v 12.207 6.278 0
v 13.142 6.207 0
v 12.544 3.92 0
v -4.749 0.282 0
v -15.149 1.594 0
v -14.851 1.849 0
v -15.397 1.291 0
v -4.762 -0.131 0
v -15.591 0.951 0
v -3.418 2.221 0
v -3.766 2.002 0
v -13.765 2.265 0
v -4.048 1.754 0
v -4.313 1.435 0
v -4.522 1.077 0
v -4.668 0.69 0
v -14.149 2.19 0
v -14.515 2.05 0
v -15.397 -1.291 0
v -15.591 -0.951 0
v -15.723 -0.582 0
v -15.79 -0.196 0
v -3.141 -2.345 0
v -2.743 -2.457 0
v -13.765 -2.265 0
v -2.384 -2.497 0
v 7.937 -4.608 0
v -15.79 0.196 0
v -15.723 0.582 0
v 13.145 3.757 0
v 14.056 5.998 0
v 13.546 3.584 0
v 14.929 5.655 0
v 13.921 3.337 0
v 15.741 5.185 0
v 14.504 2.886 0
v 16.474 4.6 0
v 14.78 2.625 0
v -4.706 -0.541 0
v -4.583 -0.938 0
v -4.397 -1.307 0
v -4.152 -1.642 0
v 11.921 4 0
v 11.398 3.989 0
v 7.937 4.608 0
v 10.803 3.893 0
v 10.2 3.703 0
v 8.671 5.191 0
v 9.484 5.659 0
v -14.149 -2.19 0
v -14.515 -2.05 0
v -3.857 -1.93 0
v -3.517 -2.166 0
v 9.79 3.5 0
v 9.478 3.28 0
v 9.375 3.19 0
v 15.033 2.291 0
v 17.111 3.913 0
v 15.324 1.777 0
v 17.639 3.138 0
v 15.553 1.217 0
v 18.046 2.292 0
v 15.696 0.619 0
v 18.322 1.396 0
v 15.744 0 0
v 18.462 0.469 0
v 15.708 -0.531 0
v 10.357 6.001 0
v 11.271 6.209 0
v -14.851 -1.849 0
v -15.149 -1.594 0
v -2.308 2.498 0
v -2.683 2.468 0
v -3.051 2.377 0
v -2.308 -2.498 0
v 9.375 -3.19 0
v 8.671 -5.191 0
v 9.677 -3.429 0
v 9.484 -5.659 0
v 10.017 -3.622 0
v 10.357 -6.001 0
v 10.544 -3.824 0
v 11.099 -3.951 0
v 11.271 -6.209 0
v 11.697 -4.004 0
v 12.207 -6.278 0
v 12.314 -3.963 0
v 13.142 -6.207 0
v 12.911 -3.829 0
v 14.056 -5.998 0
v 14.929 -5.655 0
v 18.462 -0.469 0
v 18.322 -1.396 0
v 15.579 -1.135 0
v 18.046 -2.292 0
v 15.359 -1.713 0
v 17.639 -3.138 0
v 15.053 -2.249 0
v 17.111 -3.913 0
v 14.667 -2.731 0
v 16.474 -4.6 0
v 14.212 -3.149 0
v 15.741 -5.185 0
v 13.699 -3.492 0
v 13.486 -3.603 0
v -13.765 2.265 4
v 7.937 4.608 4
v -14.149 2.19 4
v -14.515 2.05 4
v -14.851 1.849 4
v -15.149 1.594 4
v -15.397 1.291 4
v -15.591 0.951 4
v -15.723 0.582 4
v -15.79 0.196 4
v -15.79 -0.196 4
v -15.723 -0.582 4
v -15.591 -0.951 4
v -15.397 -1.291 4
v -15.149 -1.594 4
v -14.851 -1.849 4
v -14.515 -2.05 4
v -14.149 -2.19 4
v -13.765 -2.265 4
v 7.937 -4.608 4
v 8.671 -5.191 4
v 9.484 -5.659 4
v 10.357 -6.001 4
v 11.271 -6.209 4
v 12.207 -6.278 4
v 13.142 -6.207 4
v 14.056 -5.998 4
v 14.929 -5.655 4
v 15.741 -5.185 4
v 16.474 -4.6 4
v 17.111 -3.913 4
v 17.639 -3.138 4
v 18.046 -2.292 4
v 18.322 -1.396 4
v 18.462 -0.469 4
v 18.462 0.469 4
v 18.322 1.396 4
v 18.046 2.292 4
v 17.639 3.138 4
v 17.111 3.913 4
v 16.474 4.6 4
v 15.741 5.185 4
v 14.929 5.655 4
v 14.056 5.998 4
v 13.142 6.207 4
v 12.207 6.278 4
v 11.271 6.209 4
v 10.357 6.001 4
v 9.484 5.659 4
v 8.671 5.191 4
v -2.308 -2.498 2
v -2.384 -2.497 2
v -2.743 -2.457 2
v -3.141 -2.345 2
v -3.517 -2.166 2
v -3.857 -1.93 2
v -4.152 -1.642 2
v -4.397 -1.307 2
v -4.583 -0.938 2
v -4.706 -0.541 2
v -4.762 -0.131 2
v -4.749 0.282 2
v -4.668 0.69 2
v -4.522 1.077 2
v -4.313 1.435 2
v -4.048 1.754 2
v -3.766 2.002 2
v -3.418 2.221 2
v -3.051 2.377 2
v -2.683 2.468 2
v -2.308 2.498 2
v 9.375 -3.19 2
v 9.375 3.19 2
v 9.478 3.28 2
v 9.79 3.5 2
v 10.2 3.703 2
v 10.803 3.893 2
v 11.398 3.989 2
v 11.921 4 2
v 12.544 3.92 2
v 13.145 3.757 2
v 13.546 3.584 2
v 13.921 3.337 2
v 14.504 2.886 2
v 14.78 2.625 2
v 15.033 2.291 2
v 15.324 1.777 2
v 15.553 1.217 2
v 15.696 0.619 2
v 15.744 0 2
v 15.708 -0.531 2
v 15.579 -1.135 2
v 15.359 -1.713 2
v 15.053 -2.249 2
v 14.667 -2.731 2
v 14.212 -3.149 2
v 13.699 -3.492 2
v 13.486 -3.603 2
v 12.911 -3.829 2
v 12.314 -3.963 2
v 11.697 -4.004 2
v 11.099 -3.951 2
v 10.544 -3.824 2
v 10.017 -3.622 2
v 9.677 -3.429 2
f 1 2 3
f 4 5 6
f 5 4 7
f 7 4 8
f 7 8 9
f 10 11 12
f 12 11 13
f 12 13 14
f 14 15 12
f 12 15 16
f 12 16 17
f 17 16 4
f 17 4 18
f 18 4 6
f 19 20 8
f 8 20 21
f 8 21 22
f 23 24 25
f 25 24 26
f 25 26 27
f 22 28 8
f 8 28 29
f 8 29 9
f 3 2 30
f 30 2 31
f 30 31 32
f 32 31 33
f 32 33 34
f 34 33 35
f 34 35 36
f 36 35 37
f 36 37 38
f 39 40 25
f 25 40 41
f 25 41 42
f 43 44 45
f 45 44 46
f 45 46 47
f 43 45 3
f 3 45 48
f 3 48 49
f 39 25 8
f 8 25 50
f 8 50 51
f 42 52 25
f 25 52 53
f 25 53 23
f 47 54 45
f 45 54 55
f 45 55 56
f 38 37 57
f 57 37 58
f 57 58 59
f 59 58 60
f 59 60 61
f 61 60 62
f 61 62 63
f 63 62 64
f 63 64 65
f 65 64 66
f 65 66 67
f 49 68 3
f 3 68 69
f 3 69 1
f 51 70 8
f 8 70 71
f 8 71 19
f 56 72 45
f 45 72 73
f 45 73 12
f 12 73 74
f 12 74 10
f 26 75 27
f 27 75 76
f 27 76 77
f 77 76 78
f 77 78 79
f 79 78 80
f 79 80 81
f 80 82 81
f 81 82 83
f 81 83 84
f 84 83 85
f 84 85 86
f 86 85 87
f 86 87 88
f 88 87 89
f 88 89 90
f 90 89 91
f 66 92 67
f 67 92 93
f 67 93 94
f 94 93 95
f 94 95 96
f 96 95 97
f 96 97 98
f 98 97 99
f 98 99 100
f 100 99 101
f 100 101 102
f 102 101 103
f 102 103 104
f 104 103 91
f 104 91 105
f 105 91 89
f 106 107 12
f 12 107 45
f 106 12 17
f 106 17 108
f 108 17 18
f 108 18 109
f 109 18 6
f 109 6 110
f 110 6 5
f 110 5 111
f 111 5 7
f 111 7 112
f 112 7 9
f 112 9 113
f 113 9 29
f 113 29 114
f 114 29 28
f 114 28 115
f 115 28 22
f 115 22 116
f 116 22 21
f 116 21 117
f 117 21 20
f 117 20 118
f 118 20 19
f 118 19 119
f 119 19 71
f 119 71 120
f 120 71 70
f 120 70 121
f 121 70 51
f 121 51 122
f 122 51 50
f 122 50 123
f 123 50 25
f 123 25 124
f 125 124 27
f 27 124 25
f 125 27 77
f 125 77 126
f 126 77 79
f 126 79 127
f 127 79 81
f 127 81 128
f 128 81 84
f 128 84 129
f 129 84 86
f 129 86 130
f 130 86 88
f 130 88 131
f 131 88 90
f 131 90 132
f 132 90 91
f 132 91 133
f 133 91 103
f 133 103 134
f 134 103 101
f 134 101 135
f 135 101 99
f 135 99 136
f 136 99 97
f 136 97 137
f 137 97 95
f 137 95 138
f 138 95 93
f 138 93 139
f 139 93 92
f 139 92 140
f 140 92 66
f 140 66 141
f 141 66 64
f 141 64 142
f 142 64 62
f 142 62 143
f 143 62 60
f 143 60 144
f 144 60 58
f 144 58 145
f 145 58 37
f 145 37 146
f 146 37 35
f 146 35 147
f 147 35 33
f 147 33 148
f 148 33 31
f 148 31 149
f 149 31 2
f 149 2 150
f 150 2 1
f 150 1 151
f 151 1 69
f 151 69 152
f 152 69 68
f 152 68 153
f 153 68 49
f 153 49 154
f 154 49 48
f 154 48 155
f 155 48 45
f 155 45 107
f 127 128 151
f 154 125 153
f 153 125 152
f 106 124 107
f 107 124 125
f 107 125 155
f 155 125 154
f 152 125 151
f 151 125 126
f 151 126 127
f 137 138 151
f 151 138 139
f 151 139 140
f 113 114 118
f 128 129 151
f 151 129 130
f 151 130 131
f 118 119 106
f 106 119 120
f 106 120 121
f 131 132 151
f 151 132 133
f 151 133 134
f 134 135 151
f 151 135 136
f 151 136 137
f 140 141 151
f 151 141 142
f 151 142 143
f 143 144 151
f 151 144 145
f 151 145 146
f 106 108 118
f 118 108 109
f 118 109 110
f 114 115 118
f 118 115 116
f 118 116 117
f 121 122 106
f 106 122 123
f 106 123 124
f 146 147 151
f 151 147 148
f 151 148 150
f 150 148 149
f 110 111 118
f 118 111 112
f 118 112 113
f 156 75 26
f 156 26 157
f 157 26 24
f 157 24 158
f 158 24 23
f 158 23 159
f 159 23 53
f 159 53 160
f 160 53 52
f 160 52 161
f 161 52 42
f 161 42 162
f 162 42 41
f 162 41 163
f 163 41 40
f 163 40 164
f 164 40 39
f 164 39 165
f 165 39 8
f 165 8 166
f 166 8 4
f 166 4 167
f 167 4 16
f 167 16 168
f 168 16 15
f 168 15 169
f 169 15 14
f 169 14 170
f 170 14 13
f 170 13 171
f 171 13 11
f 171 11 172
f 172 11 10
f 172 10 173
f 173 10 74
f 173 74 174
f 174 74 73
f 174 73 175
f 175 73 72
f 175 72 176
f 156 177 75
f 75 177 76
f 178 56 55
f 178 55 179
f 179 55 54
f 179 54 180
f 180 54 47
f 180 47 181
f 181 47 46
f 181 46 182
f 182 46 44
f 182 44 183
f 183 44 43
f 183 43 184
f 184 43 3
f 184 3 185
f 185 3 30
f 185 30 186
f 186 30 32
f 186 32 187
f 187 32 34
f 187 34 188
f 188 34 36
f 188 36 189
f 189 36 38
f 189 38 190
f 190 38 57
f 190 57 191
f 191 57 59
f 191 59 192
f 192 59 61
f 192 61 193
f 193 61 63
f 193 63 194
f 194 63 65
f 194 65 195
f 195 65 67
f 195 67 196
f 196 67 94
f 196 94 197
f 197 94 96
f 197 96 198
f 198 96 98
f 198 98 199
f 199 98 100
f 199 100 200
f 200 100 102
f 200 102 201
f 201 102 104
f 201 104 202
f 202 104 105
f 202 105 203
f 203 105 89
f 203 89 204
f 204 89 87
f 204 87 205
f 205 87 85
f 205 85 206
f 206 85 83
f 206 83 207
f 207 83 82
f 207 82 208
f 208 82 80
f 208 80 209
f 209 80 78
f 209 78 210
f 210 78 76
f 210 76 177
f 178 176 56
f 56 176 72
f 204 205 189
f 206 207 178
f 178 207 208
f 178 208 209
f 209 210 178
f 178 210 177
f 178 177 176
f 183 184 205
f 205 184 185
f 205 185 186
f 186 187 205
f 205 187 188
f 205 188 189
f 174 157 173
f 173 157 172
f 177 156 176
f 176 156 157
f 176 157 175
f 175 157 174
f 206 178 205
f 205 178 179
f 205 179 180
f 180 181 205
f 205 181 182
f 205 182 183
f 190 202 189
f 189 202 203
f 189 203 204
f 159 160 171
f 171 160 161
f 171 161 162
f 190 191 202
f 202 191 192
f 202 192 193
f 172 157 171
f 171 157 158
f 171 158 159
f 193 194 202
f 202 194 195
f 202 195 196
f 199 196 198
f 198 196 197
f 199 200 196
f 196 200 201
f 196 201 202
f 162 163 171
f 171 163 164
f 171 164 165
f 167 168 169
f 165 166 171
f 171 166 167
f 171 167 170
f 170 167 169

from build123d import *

# Parameters (mm, degrees)
BOSS_EXTRUDE6_DEPTH = 4
CUT_EXTRUDE1_DEPTH  = 2


with BuildPart() as part:
    # Sketch2 → Boss-Extrude6 (new body)
    with BuildSketch(Plane.XY):
        with BuildLine():
            Line((7.936945185, 4.607509822), (-13.764834635, 2.265131203))
            ThreePointArc((-13.764834635, 2.265131203), (-15.798635322, 0), (-13.764834635, -2.265131203))
            Line((-13.764834635, -2.265131203), (7.936945185, -4.607509822))
            ThreePointArc((7.936945185, -4.607509822), (18.479455181, 0), (7.936945185, 4.607509822))
        make_face()
    extrude(amount=BOSS_EXTRUDE6_DEPTH)

    # Sketch1 → Cut-Extrude1 (cut)
    with BuildSketch(Plane.XY):
        with BuildLine():
            Line((-2.308259951, 2.498066053), (9.375044145, 3.190055955))
            add(Edge.make_bspline(
                [(9.375044145, 3.190055955), (9.743762717, 3.535051607), (10.542113364, 3.885379294), (11.739855888, 4.053778423), (12.781606273, 3.904003548), (13.647647588, 3.58835165), (14.172524986, 3.123610305), (14.749448402, 2.727996587), (15.239395752, 2.01553181), (15.653528757, 1.050879588), (15.788992815, -0.000691818), (15.651665108, -1.048112313), (15.246850359, -2.025217286), (14.603250264, -2.863967716), (13.764299096, -3.507779486), (12.787785525, -3.91194775), (11.73820132, -4.051651269), (10.542857019, -3.886335356), (9.743600409, -3.534842939), (9.375044145, -3.190055955)],
                knots=[0, 0, 0, 0, 0.085136877, 0.144403023, 0.203669169, 0.262935434, 0.297502717, 0.322201499, 0.3814676, 0.440733879, 0.5, 0.559266121, 0.6185324, 0.677798501, 0.737064566, 0.796330831, 0.855596977, 0.914863123, 1, 1, 1, 1], degree=3))
            Line((9.375044145, -3.190055955), (-2.308259951, -2.498066053))
            add(Edge.make_bspline(
                [(-2.308259951, -2.498066053), (-2.730270965, -2.498681523), (-3.365255191, -2.317767142), (-4.051947117, -1.791219452), (-4.45450445, -1.266528616), (-4.707556493, -0.655614107), (-4.793872131, 0), (-4.707556493, 0.655614107), (-4.45450445, 1.266528616), (-4.051947117, 1.791219452), (-3.365255191, 2.317767142), (-2.730270965, 2.498681523), (-2.308259951, 2.498066053)],
                knots=[0, 0, 0, 0, 0.162547316, 0.2469105, 0.331273485, 0.415637006, 0.5, 0.584362994, 0.668726515, 0.7530895, 0.837452684, 1, 1, 1, 1], degree=3))
        make_face()
    extrude(amount=CUT_EXTRUDE1_DEPTH, mode=Mode.SUBTRACT)


solid = part.part
